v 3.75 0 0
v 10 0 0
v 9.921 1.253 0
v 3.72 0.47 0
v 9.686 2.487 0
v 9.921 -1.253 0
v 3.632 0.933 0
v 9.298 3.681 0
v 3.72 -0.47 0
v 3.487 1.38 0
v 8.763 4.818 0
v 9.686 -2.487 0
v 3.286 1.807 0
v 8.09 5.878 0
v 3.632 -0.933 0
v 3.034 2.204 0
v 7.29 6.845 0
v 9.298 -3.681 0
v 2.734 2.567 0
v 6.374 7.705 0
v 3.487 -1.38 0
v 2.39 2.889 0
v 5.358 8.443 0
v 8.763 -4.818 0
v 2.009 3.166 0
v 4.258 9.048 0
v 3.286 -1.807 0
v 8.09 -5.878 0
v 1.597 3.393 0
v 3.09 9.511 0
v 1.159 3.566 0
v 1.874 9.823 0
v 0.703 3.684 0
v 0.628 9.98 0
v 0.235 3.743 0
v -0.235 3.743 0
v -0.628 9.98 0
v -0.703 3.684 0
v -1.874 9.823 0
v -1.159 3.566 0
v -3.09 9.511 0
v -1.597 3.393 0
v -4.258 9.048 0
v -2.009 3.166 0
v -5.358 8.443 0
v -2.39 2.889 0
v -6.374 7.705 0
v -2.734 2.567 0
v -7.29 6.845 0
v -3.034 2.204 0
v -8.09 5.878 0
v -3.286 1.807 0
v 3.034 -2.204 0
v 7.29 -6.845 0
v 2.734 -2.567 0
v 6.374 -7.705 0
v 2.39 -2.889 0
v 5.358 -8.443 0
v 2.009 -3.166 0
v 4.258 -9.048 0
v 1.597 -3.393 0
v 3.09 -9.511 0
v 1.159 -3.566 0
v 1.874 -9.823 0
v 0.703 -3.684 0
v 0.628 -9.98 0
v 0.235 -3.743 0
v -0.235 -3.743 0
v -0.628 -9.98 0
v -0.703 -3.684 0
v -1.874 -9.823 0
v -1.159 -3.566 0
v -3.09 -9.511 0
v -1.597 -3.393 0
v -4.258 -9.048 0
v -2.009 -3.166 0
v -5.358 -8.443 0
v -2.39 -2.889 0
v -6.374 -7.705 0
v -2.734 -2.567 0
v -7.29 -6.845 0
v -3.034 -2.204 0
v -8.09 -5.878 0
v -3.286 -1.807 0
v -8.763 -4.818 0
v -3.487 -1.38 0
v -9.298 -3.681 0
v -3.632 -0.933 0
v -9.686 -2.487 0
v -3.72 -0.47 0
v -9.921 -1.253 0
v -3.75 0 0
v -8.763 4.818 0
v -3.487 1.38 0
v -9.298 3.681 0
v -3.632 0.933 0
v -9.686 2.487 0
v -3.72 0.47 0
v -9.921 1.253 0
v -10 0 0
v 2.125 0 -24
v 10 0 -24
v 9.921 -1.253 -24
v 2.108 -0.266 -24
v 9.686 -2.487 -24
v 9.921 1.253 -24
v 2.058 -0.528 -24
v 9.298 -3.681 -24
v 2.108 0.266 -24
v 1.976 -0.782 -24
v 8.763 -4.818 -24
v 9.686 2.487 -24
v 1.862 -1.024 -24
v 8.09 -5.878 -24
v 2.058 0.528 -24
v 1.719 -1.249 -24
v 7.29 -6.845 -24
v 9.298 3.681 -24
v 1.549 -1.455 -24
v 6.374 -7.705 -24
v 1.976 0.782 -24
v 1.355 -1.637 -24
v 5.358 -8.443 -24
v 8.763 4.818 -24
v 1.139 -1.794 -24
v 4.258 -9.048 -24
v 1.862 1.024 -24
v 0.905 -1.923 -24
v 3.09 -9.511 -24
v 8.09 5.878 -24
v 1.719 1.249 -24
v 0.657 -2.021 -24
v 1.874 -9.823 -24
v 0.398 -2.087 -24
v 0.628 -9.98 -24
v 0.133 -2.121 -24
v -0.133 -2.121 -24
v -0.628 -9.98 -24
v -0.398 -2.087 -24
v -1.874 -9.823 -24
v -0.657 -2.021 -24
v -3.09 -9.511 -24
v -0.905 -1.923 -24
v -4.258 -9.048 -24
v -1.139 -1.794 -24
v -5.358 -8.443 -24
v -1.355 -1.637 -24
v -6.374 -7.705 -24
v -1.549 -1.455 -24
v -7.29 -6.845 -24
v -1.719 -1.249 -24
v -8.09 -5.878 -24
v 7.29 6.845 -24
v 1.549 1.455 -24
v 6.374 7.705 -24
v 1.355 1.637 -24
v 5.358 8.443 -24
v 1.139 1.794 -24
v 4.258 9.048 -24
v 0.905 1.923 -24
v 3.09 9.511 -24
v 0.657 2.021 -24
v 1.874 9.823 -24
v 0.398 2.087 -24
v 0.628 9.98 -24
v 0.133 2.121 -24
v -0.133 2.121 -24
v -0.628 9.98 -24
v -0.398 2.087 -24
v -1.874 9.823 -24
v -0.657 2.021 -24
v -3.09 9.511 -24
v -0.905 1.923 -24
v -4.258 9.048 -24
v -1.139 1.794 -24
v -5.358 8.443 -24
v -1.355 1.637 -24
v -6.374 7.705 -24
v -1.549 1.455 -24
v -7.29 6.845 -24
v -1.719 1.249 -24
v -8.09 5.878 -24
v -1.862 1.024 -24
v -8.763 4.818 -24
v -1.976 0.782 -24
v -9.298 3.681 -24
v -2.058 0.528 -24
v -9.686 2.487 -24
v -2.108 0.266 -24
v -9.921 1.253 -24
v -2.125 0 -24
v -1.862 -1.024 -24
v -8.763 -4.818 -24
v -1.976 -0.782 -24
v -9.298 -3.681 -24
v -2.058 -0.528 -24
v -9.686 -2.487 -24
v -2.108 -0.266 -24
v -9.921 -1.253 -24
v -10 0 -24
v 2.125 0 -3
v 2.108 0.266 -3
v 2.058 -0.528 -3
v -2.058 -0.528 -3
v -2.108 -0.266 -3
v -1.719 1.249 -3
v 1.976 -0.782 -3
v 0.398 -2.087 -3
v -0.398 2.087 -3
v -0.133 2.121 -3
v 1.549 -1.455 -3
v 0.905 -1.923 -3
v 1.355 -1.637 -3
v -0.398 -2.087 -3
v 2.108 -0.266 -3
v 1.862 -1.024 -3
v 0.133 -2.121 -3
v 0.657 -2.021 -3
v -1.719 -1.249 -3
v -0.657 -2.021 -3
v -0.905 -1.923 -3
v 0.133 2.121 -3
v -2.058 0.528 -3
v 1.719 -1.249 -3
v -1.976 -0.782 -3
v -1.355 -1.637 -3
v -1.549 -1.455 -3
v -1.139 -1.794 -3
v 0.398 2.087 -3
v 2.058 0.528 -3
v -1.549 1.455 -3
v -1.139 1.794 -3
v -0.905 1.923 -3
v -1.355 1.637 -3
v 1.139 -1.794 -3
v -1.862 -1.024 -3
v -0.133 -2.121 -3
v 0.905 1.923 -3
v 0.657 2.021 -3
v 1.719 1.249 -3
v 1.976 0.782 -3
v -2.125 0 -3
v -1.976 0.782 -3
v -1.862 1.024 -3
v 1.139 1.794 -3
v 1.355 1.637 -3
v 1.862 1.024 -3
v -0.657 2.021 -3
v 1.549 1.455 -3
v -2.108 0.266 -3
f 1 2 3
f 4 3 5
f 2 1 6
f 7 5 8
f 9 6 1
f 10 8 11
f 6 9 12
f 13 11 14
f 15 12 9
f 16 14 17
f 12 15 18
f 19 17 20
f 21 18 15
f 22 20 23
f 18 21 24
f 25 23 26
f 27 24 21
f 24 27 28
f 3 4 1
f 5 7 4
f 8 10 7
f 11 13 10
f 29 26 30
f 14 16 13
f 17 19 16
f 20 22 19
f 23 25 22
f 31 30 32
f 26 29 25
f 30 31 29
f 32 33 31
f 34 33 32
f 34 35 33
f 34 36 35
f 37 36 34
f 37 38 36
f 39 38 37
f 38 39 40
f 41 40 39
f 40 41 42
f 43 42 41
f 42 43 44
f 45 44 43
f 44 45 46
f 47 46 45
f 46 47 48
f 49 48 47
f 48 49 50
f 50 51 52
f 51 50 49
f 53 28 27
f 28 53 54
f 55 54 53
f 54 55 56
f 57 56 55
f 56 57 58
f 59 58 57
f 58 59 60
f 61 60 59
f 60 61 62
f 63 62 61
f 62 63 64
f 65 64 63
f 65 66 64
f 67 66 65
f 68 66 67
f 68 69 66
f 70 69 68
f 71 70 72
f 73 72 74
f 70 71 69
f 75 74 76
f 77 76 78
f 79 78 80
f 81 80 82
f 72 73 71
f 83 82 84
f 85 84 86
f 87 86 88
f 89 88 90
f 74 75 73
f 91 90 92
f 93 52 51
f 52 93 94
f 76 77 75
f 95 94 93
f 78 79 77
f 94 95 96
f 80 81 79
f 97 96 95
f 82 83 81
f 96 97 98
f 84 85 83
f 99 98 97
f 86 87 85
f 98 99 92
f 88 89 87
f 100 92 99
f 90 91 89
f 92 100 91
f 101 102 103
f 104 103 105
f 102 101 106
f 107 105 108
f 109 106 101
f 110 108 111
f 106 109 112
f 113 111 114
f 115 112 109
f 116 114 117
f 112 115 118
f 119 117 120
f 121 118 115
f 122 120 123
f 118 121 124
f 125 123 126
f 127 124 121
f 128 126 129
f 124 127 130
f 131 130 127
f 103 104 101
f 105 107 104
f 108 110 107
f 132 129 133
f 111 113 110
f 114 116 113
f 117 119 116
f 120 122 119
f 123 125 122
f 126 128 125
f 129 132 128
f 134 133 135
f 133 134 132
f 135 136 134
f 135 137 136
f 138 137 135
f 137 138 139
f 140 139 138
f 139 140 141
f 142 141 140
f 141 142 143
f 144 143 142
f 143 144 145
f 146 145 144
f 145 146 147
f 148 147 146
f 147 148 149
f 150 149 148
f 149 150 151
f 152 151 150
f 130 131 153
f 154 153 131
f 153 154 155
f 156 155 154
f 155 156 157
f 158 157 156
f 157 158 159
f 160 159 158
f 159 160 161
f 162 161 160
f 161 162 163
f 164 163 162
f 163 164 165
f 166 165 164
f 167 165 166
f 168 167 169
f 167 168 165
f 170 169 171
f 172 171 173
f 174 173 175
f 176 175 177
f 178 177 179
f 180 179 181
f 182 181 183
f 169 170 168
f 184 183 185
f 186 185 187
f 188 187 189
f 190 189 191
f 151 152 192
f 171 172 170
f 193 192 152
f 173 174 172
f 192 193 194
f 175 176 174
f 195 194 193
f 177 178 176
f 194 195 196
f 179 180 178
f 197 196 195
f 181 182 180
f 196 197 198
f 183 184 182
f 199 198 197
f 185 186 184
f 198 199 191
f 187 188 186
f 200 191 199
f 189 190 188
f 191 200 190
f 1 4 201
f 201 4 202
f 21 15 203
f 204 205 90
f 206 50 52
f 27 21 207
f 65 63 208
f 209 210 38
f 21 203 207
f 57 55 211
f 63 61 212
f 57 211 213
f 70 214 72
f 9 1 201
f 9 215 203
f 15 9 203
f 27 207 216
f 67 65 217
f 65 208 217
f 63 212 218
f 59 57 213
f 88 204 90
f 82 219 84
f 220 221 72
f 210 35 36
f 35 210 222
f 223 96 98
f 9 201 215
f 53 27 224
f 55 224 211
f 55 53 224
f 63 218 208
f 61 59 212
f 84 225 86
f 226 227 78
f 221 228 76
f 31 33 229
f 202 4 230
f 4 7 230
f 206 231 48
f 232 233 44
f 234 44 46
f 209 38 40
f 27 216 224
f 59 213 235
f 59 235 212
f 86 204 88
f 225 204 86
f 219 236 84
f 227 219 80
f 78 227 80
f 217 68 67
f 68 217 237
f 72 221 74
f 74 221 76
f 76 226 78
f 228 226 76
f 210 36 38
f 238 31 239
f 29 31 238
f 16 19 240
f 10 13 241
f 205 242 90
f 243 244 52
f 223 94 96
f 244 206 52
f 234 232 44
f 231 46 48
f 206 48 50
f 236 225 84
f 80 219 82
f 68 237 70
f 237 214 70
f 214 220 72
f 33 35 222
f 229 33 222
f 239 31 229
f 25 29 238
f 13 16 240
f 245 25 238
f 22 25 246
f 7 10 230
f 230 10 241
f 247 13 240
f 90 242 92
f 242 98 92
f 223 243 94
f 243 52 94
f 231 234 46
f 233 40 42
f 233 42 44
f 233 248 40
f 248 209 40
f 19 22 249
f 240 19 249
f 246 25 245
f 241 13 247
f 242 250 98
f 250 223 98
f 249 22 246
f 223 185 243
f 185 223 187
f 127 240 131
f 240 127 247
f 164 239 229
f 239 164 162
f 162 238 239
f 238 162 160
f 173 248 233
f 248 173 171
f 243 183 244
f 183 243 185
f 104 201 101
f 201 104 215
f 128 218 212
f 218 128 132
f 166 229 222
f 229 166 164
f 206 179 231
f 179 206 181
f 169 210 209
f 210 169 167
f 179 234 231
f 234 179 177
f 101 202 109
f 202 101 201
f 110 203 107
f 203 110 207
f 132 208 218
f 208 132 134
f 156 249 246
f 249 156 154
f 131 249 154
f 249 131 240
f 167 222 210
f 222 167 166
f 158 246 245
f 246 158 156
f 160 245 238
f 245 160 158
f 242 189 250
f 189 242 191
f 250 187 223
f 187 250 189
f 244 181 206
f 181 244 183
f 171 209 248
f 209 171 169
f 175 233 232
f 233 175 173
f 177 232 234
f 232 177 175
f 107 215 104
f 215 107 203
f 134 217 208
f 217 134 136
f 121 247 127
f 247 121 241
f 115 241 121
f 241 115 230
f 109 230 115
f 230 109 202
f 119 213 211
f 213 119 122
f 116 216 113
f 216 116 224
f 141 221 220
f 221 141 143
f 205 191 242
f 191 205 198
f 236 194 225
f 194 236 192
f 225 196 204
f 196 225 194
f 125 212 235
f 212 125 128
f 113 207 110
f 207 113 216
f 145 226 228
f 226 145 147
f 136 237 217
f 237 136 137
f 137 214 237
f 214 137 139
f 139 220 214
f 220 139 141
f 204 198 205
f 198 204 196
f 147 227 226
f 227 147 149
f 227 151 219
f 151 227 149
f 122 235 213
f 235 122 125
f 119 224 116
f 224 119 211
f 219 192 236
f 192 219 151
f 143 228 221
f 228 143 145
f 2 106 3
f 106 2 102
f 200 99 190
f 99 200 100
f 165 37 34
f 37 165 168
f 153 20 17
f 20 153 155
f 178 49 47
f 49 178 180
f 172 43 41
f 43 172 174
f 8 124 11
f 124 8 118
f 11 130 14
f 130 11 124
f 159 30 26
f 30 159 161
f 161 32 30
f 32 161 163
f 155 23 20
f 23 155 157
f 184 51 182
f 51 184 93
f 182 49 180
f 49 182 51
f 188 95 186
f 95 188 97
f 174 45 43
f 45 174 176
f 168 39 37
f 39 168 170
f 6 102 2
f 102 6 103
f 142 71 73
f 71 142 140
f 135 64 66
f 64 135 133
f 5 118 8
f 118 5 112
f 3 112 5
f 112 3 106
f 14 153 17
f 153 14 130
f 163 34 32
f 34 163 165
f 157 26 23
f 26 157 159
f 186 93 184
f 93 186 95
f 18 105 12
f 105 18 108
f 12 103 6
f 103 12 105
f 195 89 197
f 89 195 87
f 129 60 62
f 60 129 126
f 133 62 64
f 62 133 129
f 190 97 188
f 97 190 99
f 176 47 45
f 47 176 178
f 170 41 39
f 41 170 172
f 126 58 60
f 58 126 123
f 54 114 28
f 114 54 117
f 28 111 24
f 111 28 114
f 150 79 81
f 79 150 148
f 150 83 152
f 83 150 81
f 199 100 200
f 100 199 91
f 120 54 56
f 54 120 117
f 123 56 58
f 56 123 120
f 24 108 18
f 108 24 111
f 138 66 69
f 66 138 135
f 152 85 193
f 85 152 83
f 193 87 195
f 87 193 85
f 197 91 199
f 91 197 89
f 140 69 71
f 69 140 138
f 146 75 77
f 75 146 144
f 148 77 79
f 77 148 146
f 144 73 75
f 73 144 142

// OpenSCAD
$fn = 50;


difference() {
	union() {
		translate(v = [0, 0, -24.0000000000]) {
			cylinder(h = 24, r = 10.0000000000);
		}
		cylinder(h = 0, r = 16.0000000000);
	}
	union() {
		translate(v = [0, 0, 0]) {
			rotate(a = [0, 0, 0]) {
				difference() {
					union() {
						#translate(v = [0, 0, -24.0000000000]) {
							cylinder(h = 24, r = 2.0000000000);
						}
						#translate(v = [0, 0, -3]) {
							cylinder(h = 3, r = 10.0000000000, r1 = 2.1250000000, r2 = 3.7500000000);
						}
						#translate(v = [0, 0, -24.0000000000]) {
							cylinder(h = 24, r = 2.1250000000);
						}
						#translate(v = [0, 0, -24.0000000000]) {
							cylinder(h = 24, r = 2.0000000000);
						}
					}
					union();
				}
			}
		}
	}
}
